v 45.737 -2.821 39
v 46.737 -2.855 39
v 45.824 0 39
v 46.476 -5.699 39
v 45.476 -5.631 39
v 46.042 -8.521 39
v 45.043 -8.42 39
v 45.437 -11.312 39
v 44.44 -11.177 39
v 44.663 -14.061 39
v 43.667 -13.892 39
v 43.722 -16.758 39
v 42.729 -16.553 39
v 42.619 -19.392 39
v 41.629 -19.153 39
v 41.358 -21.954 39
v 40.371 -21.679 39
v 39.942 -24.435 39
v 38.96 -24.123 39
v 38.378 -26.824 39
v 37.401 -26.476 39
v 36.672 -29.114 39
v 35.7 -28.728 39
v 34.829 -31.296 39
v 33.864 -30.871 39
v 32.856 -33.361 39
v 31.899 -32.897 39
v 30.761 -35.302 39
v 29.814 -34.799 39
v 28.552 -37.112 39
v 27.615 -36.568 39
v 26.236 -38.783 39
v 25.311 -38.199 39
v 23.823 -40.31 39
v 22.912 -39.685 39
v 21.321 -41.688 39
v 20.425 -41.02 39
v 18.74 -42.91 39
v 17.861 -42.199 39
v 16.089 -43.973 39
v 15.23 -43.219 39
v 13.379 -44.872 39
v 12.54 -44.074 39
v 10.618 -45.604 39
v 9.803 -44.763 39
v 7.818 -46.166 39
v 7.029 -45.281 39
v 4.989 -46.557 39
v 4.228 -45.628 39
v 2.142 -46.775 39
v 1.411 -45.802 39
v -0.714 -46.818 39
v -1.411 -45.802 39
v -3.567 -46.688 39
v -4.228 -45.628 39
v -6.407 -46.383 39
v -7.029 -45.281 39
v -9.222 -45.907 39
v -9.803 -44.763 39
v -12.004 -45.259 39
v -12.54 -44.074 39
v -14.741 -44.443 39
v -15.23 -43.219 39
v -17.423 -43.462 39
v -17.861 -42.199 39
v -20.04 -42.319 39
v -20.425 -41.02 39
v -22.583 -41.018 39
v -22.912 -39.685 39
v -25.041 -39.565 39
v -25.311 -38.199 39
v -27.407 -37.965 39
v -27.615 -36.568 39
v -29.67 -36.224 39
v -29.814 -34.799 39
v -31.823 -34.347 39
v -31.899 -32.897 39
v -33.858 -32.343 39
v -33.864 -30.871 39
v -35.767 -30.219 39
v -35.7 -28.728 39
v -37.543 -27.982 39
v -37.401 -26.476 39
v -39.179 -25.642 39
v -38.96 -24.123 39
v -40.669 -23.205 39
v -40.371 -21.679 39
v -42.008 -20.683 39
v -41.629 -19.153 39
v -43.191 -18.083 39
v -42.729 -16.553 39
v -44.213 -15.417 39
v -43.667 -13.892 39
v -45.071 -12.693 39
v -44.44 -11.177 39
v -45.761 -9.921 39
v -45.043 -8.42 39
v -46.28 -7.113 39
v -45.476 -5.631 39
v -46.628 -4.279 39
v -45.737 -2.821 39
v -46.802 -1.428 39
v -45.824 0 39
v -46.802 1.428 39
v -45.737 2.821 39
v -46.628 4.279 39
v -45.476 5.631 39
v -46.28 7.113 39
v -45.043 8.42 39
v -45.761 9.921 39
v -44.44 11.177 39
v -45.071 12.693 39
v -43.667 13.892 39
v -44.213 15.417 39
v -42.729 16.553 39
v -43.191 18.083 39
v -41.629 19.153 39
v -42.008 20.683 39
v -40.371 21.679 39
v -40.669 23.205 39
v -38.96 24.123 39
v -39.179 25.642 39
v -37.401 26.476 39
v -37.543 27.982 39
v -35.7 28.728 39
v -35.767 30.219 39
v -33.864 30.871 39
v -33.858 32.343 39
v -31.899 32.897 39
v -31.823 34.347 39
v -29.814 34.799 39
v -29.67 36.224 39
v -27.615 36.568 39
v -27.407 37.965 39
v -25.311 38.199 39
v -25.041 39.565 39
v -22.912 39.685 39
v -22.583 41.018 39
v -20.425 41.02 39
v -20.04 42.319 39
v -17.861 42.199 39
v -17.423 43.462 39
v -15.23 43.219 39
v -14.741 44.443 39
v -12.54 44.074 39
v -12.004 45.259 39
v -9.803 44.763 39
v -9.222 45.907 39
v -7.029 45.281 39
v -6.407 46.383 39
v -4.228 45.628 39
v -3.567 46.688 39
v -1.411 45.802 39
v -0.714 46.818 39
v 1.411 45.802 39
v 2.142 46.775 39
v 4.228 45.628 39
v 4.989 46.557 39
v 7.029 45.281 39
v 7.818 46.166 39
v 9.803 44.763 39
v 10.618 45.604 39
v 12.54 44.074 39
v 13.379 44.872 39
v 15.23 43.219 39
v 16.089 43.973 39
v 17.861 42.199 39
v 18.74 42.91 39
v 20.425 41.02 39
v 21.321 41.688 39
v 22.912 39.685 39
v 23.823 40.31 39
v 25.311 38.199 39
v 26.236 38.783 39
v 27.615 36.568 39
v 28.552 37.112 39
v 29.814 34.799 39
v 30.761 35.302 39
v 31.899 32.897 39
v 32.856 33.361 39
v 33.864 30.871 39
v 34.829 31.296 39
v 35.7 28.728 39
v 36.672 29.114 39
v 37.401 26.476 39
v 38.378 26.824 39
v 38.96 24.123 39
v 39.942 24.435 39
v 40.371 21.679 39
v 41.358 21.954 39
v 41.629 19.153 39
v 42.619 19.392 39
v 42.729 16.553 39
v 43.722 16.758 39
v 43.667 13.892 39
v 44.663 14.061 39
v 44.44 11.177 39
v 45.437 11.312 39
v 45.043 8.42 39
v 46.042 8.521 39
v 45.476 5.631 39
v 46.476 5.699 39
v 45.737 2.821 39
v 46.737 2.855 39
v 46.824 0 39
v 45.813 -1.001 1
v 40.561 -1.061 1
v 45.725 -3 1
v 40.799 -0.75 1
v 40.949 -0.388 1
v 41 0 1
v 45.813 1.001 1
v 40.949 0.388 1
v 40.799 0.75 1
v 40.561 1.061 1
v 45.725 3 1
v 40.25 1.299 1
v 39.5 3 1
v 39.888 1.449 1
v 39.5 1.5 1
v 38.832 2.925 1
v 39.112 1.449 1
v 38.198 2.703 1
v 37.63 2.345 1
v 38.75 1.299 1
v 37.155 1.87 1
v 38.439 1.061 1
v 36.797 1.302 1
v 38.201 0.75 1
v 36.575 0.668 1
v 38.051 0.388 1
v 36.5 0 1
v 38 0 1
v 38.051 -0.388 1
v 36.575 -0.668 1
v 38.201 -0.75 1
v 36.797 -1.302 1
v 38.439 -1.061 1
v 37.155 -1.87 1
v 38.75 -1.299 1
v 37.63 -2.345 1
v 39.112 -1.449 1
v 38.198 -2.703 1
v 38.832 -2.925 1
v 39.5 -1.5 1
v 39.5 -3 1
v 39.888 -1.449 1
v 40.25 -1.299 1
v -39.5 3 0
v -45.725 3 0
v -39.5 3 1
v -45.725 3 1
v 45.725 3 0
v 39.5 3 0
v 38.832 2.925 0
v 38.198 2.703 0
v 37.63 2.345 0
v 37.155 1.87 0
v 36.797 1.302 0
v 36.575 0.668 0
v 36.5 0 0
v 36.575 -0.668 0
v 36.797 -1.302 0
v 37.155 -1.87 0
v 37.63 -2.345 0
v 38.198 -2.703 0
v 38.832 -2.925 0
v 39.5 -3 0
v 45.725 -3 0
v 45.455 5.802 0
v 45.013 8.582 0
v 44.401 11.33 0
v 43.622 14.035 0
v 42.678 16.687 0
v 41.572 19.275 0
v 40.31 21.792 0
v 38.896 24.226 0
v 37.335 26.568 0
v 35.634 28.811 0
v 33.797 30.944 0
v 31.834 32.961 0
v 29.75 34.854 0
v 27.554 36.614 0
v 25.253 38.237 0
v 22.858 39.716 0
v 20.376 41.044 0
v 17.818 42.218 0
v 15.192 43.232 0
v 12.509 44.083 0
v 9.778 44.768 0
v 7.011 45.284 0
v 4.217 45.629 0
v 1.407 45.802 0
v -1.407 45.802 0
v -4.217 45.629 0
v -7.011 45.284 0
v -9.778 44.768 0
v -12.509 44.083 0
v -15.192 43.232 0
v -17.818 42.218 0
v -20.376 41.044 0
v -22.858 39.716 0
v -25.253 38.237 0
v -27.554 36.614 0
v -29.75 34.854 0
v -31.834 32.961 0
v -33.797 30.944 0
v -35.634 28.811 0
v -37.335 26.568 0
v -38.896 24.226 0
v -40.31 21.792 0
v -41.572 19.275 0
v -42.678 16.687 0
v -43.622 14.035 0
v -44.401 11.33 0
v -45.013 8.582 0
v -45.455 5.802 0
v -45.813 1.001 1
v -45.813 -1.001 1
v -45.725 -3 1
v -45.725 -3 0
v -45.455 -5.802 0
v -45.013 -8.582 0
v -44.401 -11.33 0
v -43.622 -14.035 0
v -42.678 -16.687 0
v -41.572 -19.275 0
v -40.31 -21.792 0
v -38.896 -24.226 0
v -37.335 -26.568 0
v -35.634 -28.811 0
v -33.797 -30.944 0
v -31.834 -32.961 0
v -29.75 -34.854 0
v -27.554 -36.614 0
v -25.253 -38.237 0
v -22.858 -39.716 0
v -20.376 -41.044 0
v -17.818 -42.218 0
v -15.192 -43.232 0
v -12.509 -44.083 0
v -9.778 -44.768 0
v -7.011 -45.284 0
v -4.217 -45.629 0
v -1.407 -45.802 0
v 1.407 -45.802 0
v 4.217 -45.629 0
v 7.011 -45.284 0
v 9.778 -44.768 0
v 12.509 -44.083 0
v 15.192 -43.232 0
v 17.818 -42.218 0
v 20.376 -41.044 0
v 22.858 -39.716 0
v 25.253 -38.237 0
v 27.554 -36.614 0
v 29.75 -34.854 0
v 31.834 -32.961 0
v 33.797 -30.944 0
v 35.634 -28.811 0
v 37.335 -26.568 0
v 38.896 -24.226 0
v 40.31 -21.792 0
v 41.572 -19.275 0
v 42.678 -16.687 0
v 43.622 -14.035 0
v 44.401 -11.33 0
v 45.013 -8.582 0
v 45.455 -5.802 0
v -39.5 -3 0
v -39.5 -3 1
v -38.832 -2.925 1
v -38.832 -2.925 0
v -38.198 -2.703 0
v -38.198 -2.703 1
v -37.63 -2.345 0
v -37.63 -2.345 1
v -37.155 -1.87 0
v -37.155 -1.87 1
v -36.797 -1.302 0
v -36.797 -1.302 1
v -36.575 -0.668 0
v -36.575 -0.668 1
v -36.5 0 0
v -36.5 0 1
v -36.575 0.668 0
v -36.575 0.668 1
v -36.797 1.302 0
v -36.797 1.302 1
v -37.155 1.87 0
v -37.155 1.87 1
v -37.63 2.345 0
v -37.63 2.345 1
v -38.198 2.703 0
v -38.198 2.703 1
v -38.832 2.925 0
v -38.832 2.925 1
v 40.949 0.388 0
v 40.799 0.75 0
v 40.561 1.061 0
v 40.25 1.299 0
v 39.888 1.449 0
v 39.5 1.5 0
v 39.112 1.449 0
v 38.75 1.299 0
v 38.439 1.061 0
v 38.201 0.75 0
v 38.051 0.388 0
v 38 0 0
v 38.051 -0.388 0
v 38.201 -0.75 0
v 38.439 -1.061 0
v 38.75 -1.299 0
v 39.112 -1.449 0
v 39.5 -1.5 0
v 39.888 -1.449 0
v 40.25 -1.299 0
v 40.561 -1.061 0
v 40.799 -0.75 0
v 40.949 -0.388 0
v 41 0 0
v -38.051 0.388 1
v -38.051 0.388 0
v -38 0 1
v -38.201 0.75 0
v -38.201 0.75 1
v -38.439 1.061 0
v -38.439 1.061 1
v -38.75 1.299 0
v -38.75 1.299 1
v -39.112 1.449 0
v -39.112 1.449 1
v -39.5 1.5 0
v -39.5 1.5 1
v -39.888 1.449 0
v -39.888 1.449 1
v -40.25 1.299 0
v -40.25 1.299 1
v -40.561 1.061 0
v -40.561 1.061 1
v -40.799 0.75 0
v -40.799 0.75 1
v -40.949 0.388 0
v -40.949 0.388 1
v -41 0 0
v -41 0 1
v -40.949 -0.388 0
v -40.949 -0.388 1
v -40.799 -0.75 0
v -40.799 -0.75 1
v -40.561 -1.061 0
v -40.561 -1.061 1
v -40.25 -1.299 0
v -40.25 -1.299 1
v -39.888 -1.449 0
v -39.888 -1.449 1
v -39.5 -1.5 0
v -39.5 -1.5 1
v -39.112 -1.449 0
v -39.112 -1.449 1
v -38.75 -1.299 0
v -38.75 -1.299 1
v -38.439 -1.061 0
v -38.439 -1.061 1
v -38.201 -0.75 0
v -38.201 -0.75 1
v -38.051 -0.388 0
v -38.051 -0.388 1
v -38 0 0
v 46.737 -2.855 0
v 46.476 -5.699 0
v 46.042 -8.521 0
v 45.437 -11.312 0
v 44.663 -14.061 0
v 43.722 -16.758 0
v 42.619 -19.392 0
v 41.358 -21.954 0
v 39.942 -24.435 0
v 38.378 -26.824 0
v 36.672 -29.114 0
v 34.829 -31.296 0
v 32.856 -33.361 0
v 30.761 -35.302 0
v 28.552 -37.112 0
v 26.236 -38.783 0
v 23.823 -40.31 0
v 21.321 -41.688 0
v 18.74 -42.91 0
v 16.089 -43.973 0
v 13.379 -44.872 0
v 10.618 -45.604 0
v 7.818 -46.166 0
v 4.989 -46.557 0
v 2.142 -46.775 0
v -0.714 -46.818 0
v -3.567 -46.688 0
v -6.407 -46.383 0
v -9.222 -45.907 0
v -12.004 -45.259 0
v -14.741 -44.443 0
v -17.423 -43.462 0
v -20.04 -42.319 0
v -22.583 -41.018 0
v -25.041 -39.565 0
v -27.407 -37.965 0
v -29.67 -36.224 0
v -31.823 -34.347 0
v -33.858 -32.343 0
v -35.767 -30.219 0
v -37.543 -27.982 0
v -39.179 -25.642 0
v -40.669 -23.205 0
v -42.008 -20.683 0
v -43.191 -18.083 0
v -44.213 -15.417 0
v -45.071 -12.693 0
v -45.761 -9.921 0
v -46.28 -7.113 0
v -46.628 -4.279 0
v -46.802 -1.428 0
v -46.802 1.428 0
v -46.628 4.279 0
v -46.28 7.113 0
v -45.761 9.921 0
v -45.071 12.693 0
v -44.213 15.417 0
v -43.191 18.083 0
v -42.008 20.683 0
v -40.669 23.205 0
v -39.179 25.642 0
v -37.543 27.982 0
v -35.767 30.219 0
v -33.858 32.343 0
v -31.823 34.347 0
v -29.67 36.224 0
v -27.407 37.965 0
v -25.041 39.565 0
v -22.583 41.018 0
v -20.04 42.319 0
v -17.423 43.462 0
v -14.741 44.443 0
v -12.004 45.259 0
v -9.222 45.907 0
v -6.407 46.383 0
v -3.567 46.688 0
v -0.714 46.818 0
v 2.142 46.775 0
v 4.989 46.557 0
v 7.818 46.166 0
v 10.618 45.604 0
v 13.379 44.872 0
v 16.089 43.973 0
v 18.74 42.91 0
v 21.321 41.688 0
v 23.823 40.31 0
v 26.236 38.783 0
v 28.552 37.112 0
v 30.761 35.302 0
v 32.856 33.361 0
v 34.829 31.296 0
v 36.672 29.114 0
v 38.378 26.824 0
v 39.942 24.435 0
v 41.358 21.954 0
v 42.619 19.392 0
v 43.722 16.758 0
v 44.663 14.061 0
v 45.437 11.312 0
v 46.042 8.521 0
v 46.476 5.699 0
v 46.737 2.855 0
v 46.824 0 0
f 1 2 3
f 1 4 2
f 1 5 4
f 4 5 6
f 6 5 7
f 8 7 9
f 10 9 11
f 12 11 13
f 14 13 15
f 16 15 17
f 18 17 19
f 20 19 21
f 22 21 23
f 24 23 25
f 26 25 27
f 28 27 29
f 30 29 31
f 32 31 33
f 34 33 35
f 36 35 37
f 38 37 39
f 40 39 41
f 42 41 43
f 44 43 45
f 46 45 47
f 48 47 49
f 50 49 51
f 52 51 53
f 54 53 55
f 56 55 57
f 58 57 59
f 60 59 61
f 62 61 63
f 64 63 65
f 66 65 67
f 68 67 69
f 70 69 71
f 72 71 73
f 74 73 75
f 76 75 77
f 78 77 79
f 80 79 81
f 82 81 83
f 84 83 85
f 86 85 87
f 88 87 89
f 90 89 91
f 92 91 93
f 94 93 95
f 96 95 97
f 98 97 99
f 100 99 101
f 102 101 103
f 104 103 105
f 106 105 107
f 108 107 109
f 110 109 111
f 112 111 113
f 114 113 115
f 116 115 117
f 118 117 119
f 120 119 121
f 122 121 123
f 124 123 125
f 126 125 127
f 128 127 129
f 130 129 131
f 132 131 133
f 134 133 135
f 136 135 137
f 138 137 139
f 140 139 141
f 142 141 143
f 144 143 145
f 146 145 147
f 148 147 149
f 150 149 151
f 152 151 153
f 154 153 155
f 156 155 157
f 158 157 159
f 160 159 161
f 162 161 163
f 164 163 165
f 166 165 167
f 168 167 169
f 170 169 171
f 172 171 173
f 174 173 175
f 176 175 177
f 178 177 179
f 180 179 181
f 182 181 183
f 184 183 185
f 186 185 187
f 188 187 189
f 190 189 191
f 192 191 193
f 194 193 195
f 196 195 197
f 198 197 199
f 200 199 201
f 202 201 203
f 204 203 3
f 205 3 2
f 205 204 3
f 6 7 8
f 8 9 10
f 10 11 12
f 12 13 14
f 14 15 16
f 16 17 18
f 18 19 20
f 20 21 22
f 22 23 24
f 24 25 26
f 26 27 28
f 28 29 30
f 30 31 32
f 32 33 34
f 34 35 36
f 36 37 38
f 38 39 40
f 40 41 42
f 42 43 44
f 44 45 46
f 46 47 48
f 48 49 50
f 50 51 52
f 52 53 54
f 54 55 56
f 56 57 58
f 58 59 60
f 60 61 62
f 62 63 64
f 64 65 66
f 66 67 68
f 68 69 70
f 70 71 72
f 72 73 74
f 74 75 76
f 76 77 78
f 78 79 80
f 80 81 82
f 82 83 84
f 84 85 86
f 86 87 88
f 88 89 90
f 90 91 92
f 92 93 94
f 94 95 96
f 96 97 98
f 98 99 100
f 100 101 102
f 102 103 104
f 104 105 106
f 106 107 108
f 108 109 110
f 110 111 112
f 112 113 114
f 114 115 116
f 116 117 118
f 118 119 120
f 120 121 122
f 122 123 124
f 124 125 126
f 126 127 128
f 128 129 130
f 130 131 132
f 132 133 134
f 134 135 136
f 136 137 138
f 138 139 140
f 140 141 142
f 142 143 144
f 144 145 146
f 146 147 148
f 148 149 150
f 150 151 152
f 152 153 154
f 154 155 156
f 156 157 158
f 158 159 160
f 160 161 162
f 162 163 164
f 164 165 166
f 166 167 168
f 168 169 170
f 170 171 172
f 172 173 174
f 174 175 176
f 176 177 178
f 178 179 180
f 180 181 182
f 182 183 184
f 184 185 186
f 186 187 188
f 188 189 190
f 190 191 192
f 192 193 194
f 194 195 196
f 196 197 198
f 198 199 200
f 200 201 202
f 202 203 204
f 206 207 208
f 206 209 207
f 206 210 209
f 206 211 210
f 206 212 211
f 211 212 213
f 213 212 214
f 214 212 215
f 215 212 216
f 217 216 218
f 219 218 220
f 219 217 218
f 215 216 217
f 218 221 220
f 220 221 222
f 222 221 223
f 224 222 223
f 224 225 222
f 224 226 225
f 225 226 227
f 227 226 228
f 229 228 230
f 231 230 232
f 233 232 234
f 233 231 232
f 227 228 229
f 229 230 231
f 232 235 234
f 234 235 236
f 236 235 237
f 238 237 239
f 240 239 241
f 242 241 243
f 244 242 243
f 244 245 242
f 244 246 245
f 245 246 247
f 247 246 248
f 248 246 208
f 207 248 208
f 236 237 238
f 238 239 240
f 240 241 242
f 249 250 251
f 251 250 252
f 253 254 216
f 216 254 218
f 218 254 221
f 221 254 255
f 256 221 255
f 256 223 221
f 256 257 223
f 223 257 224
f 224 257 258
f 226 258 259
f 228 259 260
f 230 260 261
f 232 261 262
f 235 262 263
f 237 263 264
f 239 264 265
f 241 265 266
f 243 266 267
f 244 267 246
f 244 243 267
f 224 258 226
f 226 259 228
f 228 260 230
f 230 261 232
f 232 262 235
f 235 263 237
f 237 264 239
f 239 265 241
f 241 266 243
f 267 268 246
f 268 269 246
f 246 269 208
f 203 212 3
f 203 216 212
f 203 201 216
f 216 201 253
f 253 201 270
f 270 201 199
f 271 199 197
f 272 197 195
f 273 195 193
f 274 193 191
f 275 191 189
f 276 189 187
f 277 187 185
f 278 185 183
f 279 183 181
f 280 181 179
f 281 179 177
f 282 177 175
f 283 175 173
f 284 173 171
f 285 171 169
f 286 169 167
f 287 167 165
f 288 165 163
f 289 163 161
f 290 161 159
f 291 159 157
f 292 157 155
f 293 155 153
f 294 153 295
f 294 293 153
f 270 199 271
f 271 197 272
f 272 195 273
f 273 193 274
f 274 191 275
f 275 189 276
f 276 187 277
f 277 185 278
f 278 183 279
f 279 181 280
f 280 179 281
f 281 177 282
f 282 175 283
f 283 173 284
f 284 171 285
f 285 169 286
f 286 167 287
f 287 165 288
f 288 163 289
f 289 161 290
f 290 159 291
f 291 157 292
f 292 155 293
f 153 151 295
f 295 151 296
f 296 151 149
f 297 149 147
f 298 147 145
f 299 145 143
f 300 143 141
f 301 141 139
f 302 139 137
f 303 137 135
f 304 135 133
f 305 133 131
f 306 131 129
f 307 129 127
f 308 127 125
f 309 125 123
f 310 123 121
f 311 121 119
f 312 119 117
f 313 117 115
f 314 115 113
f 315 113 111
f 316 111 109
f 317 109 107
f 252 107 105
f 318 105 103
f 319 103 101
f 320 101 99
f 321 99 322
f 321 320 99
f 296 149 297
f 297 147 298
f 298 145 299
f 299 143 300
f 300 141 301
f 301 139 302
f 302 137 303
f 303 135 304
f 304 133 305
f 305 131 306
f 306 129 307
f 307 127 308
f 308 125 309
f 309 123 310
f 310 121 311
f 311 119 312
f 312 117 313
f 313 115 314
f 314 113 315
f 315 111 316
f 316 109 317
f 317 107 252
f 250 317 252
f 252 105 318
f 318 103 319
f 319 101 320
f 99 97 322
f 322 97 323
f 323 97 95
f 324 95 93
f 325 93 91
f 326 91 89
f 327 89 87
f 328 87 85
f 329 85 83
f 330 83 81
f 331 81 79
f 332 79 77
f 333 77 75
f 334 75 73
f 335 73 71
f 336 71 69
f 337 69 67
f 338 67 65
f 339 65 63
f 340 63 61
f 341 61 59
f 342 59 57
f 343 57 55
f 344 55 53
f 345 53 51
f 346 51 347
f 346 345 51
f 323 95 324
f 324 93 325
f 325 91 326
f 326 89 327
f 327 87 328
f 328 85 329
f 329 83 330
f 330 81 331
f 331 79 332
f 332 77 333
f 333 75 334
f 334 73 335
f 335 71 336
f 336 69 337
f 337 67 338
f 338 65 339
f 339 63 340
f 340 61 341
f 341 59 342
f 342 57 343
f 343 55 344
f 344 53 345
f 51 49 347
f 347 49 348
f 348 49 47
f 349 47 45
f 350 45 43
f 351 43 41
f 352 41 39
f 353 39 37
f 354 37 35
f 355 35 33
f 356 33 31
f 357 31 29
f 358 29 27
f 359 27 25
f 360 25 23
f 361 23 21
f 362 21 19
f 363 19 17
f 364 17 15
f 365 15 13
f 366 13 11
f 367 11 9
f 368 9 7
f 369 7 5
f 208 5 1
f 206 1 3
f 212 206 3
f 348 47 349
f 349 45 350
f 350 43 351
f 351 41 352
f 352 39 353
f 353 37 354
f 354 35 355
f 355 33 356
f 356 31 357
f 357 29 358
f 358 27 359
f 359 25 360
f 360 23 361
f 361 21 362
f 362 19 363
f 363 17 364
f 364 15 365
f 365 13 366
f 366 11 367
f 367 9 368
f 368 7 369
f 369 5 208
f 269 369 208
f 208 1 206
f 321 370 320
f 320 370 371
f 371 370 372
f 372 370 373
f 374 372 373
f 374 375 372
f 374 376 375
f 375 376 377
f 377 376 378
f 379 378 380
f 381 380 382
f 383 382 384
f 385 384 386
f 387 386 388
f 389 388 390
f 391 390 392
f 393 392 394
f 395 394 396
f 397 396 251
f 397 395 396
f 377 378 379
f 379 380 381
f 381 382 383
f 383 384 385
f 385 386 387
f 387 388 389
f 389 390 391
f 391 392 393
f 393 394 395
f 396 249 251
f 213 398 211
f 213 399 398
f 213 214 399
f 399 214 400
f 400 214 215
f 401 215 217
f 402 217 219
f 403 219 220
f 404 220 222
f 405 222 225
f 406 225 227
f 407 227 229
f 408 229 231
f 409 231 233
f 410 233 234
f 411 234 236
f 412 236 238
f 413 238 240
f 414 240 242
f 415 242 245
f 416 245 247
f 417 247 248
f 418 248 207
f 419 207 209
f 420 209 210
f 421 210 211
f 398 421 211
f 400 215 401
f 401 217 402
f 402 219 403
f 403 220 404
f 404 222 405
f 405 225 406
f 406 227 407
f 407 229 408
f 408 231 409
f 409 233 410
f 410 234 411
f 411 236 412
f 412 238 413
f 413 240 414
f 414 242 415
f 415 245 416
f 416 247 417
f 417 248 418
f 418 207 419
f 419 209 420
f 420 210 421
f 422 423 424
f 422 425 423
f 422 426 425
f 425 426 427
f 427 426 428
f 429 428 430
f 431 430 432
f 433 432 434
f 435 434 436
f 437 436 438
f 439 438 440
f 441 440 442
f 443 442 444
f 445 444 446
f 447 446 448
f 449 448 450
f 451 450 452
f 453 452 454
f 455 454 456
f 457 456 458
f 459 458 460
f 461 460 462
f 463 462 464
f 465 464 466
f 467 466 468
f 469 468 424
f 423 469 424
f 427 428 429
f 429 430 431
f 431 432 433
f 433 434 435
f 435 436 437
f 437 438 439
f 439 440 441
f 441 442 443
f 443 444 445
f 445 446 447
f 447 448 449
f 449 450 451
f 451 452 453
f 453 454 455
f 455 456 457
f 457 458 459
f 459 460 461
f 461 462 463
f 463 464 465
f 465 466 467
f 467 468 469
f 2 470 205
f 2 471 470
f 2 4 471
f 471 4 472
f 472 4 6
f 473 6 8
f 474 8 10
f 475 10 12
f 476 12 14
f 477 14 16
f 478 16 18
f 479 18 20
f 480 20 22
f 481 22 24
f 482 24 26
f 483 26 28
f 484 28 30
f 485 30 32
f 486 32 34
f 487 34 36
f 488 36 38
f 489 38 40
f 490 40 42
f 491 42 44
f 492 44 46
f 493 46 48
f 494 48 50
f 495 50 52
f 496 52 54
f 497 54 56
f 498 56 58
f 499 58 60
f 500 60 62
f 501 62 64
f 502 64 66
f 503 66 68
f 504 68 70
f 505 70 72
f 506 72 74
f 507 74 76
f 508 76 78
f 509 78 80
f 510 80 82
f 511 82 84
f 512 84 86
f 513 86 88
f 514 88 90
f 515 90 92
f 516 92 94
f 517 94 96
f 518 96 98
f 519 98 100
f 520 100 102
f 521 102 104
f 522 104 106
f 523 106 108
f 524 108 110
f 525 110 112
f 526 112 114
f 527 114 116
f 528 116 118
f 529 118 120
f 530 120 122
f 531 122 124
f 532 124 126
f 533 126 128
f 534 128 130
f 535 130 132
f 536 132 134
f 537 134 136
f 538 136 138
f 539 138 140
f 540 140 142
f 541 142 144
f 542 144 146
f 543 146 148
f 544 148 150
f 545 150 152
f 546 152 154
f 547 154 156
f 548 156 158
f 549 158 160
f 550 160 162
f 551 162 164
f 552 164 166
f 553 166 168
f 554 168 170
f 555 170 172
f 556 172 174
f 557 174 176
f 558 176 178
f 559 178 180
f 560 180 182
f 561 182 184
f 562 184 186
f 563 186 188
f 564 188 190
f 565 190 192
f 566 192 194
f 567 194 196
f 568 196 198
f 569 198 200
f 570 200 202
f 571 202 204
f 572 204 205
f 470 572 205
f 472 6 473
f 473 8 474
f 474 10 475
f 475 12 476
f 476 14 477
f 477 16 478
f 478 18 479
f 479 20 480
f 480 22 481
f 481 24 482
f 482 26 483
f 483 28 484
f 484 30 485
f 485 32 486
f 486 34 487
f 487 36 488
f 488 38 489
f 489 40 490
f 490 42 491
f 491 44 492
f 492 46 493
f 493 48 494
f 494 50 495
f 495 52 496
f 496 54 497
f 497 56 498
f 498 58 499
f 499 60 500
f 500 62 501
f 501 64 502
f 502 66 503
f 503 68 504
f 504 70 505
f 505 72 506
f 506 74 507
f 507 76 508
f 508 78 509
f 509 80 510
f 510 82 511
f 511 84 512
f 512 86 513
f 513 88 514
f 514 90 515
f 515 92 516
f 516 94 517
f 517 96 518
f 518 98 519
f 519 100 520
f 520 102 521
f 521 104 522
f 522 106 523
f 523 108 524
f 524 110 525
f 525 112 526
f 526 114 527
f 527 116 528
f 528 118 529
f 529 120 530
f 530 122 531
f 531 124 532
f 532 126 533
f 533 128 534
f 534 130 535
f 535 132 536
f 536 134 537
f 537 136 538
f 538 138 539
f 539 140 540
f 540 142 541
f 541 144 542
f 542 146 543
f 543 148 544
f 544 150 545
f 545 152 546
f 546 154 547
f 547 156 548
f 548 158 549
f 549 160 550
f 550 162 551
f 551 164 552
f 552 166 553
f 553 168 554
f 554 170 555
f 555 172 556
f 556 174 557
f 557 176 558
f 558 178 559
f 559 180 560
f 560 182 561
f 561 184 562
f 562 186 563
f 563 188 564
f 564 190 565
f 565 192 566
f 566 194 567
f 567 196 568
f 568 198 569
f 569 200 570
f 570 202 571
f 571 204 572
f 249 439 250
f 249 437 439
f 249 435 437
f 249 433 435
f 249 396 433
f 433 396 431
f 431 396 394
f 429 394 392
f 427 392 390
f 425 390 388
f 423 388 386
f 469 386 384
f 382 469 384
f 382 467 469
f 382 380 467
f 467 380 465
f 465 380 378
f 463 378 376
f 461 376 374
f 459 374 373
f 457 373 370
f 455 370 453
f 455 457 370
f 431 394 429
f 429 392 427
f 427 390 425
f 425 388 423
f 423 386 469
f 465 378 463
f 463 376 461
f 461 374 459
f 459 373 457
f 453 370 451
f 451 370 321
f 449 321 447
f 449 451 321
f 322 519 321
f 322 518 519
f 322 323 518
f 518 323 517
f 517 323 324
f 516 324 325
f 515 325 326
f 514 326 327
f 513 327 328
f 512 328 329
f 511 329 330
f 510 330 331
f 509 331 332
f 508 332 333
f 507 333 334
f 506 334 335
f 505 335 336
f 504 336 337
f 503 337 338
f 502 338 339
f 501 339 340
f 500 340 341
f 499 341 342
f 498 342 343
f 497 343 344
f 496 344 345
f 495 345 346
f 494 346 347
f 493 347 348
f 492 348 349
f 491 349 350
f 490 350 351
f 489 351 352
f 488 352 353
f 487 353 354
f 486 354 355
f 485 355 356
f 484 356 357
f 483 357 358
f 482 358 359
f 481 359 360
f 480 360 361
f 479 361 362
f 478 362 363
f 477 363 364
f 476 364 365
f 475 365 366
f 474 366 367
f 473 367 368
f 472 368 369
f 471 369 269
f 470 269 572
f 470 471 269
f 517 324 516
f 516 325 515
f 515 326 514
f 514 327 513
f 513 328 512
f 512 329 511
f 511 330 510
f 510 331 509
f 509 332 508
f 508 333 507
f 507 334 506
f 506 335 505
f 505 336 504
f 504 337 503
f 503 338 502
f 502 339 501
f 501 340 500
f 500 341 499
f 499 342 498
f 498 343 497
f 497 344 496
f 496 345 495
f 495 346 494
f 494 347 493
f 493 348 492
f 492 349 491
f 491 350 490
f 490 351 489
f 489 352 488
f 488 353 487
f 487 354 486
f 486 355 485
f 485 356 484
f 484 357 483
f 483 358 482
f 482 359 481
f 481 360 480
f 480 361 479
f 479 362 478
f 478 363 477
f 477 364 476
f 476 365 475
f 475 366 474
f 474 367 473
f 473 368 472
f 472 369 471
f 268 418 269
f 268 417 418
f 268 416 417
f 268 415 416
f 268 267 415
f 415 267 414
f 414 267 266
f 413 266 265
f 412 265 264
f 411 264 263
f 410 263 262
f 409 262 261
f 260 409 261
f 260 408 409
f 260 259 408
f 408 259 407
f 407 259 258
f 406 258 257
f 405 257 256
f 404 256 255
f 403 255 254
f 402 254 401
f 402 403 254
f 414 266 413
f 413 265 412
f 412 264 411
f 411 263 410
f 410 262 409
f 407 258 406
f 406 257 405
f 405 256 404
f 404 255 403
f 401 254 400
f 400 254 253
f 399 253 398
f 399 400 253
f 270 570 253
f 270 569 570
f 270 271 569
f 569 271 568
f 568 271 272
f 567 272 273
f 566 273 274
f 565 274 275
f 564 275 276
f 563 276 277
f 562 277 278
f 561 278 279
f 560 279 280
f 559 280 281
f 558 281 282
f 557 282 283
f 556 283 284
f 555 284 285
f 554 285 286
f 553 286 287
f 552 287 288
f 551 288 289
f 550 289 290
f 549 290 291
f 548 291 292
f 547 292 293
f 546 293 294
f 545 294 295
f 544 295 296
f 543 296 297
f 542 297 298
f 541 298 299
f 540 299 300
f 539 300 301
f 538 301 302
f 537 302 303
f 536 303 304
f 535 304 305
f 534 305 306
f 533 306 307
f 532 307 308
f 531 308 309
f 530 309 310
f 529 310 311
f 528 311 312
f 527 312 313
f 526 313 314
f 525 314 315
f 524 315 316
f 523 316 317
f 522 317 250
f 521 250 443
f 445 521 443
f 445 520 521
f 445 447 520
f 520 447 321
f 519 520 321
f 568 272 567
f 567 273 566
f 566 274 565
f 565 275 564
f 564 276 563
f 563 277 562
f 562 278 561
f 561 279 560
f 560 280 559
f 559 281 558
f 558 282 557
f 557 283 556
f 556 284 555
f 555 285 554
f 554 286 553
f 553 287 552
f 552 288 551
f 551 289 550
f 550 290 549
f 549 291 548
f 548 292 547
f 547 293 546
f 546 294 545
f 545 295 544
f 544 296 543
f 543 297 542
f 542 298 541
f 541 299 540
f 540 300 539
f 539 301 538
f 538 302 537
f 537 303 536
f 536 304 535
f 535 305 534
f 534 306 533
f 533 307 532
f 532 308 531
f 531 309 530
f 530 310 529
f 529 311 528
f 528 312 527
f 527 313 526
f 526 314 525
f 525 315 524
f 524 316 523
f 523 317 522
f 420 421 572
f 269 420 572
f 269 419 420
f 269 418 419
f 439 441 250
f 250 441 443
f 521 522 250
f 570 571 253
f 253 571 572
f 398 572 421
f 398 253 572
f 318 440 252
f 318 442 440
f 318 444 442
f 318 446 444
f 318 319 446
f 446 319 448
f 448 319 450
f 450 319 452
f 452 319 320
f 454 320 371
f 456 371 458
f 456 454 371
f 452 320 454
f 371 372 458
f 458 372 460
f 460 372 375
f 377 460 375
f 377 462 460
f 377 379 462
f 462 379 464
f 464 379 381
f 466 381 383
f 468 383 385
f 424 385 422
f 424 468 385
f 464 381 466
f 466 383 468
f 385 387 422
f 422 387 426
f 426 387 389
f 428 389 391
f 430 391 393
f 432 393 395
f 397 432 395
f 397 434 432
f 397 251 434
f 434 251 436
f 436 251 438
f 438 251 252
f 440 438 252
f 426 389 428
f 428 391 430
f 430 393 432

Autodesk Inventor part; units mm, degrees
ref_plane "YZ Plane" through (0, 0, 0) normal (1, 0, 0) x (0, 1, 0)
ref_plane "XZ Plane" through (0, 0, 0) normal (0, 1, 0) x (-1, 0, 0)
ref_plane "XY Plane" through (0, 0, 0) normal (0, 0, 1) x (1, 0, 0)
sketch "Sketch1" plane through (0, 0, 0) normal (0, 0, 1) x (1, 0, 0)
  circle A0 centre (0, 0) radius 46.8237
  circle A1 centre (-39.5, 0) radius 1.5
  arc A2 (-39.5, -3) -> (-39.5, 3) centre (-39.5, 0) ccw
  line L0 (-39.5, -3) -> (-45.7254, -3)
  line L1 (-39.5, 3) -> (-45.7254, 3)
  circle A3 centre (39.5, 0) radius 1.5
  arc A4 (39.5, 3) -> (39.5, -3) centre (39.5, 0) ccw
  line L2 (39.5, 3) -> (45.7254, 3)
  line L3 (39.5, -3) -> (45.7254, -3)
  arc A5 (-45.7254, -3) -> (45.7254, -3) centre (0, 0) ccw
  arc A6 (45.7254, 3) -> (-45.7254, 3) centre (0, 0) ccw
  point P0 (0, 0)
extrude "Extrusion1" add sketch "Sketch1" along normal blind 1
sketch "Sketch2" plane through (0, 0, 1) normal (0, 0, 1) x (1, 0, 0)
  circle A0 centre (0, 0) radius 46.8237 projected
  circle A1 centre (0, 0) radius 45.8237
  point P0 (0, 0)
  dimension "d5" = 1
extrude "Extrusion2" add sketch "Sketch2" along normal blind 38
properties part number "frame5"
